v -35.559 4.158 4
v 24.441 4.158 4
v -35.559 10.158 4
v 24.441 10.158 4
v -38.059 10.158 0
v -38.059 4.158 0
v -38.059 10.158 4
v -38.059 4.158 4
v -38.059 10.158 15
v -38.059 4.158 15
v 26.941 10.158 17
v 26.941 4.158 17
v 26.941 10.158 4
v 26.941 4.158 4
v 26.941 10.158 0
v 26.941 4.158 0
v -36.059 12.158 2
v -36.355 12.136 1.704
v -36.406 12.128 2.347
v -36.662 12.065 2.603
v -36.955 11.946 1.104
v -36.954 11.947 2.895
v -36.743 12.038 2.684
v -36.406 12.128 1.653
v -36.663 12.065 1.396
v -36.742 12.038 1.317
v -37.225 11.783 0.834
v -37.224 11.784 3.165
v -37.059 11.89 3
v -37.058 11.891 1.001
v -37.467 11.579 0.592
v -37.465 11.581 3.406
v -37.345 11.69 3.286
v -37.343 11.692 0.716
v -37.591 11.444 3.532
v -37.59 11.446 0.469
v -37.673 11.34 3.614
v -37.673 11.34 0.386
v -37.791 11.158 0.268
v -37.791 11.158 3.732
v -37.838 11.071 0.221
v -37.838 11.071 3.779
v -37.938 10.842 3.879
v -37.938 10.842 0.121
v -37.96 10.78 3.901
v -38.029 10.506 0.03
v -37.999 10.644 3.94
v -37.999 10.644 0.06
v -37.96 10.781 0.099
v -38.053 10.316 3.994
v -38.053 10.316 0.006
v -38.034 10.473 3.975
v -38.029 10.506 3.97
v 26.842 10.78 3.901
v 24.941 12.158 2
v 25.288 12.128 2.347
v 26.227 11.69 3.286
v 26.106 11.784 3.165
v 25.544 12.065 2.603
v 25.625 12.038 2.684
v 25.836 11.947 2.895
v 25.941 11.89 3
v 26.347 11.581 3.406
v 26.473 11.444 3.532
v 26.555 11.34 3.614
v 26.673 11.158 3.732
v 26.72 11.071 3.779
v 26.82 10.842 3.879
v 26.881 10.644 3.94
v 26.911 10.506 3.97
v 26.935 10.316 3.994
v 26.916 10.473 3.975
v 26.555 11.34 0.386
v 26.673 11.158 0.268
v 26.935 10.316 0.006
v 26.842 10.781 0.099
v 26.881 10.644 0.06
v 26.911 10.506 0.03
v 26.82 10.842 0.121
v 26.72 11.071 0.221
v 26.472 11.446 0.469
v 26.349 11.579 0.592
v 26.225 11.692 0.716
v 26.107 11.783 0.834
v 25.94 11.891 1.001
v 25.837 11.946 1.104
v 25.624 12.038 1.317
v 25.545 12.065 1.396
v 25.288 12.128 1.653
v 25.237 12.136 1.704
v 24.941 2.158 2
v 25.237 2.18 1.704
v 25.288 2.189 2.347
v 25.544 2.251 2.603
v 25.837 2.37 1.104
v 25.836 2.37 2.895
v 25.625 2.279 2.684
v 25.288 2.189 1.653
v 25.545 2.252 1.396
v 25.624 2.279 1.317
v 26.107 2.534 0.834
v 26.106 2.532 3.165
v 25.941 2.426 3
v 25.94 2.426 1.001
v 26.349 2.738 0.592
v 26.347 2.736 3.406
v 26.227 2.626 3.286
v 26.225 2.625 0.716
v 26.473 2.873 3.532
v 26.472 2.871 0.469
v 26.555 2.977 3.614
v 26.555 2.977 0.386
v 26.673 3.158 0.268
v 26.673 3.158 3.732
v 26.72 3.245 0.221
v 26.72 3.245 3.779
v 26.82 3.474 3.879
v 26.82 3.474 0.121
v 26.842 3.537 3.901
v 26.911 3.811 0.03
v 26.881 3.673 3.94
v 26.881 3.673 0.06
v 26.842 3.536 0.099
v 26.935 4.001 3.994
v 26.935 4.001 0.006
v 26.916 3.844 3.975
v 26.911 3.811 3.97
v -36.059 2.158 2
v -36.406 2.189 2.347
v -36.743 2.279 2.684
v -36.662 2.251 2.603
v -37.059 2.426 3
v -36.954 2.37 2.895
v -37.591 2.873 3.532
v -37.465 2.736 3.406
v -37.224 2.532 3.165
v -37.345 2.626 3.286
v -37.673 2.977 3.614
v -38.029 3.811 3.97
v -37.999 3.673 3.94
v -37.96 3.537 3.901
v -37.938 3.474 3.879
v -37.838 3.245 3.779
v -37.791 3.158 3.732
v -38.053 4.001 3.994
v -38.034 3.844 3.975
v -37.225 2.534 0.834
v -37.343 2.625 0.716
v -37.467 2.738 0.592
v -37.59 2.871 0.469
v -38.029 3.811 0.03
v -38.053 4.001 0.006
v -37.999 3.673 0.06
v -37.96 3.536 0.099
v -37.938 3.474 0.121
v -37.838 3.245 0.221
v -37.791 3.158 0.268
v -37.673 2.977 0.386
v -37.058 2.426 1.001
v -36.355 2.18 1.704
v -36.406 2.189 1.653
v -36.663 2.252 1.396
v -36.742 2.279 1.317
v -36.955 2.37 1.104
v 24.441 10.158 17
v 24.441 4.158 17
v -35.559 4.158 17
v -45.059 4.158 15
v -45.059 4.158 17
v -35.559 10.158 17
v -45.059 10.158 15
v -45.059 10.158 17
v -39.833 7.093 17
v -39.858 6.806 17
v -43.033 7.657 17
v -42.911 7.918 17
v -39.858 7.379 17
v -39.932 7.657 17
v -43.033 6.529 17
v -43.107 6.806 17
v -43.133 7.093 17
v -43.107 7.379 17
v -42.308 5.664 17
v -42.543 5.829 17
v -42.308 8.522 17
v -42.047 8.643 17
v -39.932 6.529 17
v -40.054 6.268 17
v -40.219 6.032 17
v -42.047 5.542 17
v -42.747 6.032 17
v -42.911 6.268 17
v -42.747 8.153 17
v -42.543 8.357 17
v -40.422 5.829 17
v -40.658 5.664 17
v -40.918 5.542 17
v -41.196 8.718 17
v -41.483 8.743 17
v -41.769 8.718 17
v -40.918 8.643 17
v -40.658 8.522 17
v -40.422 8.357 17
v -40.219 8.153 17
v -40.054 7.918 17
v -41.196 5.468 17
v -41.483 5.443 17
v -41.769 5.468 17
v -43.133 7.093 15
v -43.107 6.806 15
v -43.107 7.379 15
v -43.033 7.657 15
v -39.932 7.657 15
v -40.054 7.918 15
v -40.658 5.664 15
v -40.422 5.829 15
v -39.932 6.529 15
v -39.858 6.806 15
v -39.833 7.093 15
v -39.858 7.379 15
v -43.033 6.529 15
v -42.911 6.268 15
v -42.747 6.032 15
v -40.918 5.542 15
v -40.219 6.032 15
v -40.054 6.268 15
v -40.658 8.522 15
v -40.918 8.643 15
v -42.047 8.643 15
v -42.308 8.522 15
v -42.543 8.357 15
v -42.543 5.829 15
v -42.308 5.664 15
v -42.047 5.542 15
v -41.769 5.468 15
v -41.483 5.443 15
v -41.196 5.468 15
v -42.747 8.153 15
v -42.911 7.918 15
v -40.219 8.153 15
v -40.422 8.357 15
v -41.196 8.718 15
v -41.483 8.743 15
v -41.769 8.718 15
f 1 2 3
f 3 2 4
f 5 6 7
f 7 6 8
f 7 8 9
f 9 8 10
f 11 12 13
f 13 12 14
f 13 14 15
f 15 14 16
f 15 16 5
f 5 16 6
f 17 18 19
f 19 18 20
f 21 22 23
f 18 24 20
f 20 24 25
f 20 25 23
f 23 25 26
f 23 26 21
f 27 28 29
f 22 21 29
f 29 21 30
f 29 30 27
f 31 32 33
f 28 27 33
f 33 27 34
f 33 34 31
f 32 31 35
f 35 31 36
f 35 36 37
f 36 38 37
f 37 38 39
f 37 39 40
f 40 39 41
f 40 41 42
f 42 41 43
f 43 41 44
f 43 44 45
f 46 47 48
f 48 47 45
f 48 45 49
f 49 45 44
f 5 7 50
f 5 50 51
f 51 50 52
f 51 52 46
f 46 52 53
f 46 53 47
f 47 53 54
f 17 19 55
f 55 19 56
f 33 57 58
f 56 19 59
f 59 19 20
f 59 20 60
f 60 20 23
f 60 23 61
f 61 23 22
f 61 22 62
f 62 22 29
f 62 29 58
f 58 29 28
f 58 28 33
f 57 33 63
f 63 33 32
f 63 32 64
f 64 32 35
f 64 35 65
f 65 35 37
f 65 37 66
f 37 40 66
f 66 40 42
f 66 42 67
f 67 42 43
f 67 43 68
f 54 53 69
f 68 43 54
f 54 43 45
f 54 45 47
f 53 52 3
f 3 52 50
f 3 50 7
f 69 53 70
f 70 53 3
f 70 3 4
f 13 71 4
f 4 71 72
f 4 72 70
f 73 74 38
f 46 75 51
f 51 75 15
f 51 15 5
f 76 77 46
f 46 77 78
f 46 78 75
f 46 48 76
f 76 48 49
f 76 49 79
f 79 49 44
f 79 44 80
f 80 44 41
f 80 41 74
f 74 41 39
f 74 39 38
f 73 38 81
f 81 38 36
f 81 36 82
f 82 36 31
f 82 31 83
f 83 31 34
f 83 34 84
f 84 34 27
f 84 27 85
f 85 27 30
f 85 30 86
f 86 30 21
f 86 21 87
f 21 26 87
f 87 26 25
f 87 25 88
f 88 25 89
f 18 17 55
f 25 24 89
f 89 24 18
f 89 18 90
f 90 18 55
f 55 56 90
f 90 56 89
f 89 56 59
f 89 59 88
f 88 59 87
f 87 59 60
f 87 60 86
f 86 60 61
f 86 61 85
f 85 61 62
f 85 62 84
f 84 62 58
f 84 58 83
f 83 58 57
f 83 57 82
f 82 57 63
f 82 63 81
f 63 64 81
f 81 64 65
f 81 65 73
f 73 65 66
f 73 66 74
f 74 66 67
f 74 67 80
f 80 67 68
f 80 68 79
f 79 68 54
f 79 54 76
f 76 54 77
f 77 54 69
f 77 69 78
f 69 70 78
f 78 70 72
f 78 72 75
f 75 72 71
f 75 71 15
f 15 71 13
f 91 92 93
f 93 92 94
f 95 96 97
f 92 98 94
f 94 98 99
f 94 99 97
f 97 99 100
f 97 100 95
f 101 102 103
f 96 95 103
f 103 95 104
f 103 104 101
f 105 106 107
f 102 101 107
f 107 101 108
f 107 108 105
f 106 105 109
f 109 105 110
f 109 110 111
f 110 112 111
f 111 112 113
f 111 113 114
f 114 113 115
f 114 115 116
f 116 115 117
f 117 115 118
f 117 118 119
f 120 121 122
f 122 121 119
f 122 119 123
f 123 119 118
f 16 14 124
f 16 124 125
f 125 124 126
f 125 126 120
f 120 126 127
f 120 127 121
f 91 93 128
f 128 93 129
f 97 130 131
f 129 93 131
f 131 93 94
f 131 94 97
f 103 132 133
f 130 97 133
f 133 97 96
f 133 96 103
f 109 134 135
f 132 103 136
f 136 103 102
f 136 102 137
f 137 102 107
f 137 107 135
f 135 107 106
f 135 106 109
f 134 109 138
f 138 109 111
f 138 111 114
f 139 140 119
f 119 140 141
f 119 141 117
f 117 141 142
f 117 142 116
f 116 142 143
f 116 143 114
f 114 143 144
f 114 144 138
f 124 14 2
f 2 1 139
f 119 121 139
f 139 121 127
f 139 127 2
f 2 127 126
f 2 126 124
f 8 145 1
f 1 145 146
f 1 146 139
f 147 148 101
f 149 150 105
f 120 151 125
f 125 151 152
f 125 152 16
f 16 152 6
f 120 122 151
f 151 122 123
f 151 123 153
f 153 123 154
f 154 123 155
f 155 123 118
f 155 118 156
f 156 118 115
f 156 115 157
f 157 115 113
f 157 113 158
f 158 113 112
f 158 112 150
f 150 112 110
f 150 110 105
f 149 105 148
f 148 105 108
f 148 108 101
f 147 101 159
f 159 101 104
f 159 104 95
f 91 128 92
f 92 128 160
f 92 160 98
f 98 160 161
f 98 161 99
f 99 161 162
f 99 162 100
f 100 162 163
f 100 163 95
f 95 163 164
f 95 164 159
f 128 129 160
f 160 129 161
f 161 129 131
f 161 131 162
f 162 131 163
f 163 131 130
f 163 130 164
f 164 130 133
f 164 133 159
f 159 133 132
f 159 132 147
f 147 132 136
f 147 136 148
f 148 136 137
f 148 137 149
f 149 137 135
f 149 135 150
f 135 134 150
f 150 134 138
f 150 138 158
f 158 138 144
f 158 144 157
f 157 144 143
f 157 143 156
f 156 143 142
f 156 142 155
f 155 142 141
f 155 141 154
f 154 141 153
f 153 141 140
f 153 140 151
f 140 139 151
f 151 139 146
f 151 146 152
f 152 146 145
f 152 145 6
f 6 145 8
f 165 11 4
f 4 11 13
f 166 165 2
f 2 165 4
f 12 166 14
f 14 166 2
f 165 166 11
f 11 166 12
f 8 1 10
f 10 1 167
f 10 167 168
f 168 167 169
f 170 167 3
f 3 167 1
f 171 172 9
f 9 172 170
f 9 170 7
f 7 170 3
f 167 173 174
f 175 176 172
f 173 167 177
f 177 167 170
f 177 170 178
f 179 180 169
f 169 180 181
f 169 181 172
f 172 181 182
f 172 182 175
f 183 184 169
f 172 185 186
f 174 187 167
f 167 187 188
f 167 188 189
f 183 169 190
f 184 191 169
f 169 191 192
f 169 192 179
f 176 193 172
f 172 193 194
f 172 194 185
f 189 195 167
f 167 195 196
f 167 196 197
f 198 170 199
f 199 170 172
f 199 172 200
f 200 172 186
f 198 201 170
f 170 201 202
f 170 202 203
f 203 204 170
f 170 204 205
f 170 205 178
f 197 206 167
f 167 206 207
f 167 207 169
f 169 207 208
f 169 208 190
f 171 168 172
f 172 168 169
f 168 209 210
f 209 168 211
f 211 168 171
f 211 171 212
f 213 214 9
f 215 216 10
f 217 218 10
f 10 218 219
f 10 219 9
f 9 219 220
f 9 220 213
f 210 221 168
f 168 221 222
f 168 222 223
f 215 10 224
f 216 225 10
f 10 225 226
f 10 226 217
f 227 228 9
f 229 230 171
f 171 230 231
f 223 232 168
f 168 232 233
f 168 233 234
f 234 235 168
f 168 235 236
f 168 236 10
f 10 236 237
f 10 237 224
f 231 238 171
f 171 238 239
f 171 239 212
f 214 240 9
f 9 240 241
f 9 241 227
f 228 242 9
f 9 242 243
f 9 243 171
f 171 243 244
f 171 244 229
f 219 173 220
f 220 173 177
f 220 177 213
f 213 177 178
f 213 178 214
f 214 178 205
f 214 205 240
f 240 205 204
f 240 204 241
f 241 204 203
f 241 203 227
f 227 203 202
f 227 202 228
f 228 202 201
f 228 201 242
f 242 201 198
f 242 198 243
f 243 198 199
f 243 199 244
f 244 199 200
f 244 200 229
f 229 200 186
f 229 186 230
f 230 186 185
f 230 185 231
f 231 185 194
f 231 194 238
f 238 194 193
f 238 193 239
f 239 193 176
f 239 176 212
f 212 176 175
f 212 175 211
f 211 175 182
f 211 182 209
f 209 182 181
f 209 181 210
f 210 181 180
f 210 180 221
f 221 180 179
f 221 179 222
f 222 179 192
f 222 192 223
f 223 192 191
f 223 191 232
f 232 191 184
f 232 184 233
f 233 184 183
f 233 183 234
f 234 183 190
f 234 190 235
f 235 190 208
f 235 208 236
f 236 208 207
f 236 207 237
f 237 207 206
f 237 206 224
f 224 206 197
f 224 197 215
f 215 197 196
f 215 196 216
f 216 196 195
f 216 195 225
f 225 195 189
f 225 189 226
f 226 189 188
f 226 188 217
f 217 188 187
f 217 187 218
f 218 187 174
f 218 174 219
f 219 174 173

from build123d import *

# Parameters (mm, degrees)
ESQUISSE1_W        = 65
ESQUISSE1_H        = 10
BOSS_EXTRU_1_DEPTH = 4
CONG_1_R           = 2
ESQUISSE3_W        = 2.5
ESQUISSE3_H        = 6
BOSS_EXTRU_2_DEPTH = 13
ESQUISSE4_W        = 7
ESQUISSE4_H        = 6
ESQUISSE4_R        = 1.65
BOSS_EXTRU_3_DEPTH = 2


with BuildPart() as part:
    # Esquisse1 → Boss.-Extru.1 (new body)
    with BuildSketch(Plane.XY):
        with Locations((-5.559006211, 7.158385093)):
            Rectangle(ESQUISSE1_W, ESQUISSE1_H)
    extrude(amount=BOSS_EXTRU_1_DEPTH)

    # Congé1
    cong_1_edges = [part.edges().sort_by_distance(p)[0] for p in [
        (-5.559006211, 12.158385093, 4),
        (-5.559006211, 12.158385093, 0),
        (-5.559006211, 2.158385093, 0),
        (-38.059006211, 12.158385093, 2),
        (26.940993789, 12.158385093, 2),
        (26.940993789, 2.158385093, 2),
        (-38.059006211, 2.158385093, 2),
        (-5.559006211, 2.158385093, 4),
    ]]
    fillet(cong_1_edges, radius=CONG_1_R - 0.0001)  # a hair under: the kernel refuses the full size

    # Esquisse3 → Boss.-Extru.2 (add)
    with BuildSketch(Plane.XY.offset(4)):
        with Locations((-36.809006211, 7.158385093)):
            Rectangle(ESQUISSE3_W, ESQUISSE3_H)
        with Locations((25.690993789, 7.158385093)):
            Rectangle(ESQUISSE3_W, ESQUISSE3_H)
    extrude(amount=BOSS_EXTRU_2_DEPTH)

    # Esquisse4 → Boss.-Extru.3 (add)
    with BuildSketch(Plane.XY.offset(17)):
        with Locations((-41.559006211, 7.158385093)):
            Rectangle(ESQUISSE4_W, ESQUISSE4_H)
        with Locations((-41.482556552, 7.092856814)):
            Circle(ESQUISSE4_R, mode=Mode.SUBTRACT)
    extrude(amount=-BOSS_EXTRU_3_DEPTH)


solid = part.part
